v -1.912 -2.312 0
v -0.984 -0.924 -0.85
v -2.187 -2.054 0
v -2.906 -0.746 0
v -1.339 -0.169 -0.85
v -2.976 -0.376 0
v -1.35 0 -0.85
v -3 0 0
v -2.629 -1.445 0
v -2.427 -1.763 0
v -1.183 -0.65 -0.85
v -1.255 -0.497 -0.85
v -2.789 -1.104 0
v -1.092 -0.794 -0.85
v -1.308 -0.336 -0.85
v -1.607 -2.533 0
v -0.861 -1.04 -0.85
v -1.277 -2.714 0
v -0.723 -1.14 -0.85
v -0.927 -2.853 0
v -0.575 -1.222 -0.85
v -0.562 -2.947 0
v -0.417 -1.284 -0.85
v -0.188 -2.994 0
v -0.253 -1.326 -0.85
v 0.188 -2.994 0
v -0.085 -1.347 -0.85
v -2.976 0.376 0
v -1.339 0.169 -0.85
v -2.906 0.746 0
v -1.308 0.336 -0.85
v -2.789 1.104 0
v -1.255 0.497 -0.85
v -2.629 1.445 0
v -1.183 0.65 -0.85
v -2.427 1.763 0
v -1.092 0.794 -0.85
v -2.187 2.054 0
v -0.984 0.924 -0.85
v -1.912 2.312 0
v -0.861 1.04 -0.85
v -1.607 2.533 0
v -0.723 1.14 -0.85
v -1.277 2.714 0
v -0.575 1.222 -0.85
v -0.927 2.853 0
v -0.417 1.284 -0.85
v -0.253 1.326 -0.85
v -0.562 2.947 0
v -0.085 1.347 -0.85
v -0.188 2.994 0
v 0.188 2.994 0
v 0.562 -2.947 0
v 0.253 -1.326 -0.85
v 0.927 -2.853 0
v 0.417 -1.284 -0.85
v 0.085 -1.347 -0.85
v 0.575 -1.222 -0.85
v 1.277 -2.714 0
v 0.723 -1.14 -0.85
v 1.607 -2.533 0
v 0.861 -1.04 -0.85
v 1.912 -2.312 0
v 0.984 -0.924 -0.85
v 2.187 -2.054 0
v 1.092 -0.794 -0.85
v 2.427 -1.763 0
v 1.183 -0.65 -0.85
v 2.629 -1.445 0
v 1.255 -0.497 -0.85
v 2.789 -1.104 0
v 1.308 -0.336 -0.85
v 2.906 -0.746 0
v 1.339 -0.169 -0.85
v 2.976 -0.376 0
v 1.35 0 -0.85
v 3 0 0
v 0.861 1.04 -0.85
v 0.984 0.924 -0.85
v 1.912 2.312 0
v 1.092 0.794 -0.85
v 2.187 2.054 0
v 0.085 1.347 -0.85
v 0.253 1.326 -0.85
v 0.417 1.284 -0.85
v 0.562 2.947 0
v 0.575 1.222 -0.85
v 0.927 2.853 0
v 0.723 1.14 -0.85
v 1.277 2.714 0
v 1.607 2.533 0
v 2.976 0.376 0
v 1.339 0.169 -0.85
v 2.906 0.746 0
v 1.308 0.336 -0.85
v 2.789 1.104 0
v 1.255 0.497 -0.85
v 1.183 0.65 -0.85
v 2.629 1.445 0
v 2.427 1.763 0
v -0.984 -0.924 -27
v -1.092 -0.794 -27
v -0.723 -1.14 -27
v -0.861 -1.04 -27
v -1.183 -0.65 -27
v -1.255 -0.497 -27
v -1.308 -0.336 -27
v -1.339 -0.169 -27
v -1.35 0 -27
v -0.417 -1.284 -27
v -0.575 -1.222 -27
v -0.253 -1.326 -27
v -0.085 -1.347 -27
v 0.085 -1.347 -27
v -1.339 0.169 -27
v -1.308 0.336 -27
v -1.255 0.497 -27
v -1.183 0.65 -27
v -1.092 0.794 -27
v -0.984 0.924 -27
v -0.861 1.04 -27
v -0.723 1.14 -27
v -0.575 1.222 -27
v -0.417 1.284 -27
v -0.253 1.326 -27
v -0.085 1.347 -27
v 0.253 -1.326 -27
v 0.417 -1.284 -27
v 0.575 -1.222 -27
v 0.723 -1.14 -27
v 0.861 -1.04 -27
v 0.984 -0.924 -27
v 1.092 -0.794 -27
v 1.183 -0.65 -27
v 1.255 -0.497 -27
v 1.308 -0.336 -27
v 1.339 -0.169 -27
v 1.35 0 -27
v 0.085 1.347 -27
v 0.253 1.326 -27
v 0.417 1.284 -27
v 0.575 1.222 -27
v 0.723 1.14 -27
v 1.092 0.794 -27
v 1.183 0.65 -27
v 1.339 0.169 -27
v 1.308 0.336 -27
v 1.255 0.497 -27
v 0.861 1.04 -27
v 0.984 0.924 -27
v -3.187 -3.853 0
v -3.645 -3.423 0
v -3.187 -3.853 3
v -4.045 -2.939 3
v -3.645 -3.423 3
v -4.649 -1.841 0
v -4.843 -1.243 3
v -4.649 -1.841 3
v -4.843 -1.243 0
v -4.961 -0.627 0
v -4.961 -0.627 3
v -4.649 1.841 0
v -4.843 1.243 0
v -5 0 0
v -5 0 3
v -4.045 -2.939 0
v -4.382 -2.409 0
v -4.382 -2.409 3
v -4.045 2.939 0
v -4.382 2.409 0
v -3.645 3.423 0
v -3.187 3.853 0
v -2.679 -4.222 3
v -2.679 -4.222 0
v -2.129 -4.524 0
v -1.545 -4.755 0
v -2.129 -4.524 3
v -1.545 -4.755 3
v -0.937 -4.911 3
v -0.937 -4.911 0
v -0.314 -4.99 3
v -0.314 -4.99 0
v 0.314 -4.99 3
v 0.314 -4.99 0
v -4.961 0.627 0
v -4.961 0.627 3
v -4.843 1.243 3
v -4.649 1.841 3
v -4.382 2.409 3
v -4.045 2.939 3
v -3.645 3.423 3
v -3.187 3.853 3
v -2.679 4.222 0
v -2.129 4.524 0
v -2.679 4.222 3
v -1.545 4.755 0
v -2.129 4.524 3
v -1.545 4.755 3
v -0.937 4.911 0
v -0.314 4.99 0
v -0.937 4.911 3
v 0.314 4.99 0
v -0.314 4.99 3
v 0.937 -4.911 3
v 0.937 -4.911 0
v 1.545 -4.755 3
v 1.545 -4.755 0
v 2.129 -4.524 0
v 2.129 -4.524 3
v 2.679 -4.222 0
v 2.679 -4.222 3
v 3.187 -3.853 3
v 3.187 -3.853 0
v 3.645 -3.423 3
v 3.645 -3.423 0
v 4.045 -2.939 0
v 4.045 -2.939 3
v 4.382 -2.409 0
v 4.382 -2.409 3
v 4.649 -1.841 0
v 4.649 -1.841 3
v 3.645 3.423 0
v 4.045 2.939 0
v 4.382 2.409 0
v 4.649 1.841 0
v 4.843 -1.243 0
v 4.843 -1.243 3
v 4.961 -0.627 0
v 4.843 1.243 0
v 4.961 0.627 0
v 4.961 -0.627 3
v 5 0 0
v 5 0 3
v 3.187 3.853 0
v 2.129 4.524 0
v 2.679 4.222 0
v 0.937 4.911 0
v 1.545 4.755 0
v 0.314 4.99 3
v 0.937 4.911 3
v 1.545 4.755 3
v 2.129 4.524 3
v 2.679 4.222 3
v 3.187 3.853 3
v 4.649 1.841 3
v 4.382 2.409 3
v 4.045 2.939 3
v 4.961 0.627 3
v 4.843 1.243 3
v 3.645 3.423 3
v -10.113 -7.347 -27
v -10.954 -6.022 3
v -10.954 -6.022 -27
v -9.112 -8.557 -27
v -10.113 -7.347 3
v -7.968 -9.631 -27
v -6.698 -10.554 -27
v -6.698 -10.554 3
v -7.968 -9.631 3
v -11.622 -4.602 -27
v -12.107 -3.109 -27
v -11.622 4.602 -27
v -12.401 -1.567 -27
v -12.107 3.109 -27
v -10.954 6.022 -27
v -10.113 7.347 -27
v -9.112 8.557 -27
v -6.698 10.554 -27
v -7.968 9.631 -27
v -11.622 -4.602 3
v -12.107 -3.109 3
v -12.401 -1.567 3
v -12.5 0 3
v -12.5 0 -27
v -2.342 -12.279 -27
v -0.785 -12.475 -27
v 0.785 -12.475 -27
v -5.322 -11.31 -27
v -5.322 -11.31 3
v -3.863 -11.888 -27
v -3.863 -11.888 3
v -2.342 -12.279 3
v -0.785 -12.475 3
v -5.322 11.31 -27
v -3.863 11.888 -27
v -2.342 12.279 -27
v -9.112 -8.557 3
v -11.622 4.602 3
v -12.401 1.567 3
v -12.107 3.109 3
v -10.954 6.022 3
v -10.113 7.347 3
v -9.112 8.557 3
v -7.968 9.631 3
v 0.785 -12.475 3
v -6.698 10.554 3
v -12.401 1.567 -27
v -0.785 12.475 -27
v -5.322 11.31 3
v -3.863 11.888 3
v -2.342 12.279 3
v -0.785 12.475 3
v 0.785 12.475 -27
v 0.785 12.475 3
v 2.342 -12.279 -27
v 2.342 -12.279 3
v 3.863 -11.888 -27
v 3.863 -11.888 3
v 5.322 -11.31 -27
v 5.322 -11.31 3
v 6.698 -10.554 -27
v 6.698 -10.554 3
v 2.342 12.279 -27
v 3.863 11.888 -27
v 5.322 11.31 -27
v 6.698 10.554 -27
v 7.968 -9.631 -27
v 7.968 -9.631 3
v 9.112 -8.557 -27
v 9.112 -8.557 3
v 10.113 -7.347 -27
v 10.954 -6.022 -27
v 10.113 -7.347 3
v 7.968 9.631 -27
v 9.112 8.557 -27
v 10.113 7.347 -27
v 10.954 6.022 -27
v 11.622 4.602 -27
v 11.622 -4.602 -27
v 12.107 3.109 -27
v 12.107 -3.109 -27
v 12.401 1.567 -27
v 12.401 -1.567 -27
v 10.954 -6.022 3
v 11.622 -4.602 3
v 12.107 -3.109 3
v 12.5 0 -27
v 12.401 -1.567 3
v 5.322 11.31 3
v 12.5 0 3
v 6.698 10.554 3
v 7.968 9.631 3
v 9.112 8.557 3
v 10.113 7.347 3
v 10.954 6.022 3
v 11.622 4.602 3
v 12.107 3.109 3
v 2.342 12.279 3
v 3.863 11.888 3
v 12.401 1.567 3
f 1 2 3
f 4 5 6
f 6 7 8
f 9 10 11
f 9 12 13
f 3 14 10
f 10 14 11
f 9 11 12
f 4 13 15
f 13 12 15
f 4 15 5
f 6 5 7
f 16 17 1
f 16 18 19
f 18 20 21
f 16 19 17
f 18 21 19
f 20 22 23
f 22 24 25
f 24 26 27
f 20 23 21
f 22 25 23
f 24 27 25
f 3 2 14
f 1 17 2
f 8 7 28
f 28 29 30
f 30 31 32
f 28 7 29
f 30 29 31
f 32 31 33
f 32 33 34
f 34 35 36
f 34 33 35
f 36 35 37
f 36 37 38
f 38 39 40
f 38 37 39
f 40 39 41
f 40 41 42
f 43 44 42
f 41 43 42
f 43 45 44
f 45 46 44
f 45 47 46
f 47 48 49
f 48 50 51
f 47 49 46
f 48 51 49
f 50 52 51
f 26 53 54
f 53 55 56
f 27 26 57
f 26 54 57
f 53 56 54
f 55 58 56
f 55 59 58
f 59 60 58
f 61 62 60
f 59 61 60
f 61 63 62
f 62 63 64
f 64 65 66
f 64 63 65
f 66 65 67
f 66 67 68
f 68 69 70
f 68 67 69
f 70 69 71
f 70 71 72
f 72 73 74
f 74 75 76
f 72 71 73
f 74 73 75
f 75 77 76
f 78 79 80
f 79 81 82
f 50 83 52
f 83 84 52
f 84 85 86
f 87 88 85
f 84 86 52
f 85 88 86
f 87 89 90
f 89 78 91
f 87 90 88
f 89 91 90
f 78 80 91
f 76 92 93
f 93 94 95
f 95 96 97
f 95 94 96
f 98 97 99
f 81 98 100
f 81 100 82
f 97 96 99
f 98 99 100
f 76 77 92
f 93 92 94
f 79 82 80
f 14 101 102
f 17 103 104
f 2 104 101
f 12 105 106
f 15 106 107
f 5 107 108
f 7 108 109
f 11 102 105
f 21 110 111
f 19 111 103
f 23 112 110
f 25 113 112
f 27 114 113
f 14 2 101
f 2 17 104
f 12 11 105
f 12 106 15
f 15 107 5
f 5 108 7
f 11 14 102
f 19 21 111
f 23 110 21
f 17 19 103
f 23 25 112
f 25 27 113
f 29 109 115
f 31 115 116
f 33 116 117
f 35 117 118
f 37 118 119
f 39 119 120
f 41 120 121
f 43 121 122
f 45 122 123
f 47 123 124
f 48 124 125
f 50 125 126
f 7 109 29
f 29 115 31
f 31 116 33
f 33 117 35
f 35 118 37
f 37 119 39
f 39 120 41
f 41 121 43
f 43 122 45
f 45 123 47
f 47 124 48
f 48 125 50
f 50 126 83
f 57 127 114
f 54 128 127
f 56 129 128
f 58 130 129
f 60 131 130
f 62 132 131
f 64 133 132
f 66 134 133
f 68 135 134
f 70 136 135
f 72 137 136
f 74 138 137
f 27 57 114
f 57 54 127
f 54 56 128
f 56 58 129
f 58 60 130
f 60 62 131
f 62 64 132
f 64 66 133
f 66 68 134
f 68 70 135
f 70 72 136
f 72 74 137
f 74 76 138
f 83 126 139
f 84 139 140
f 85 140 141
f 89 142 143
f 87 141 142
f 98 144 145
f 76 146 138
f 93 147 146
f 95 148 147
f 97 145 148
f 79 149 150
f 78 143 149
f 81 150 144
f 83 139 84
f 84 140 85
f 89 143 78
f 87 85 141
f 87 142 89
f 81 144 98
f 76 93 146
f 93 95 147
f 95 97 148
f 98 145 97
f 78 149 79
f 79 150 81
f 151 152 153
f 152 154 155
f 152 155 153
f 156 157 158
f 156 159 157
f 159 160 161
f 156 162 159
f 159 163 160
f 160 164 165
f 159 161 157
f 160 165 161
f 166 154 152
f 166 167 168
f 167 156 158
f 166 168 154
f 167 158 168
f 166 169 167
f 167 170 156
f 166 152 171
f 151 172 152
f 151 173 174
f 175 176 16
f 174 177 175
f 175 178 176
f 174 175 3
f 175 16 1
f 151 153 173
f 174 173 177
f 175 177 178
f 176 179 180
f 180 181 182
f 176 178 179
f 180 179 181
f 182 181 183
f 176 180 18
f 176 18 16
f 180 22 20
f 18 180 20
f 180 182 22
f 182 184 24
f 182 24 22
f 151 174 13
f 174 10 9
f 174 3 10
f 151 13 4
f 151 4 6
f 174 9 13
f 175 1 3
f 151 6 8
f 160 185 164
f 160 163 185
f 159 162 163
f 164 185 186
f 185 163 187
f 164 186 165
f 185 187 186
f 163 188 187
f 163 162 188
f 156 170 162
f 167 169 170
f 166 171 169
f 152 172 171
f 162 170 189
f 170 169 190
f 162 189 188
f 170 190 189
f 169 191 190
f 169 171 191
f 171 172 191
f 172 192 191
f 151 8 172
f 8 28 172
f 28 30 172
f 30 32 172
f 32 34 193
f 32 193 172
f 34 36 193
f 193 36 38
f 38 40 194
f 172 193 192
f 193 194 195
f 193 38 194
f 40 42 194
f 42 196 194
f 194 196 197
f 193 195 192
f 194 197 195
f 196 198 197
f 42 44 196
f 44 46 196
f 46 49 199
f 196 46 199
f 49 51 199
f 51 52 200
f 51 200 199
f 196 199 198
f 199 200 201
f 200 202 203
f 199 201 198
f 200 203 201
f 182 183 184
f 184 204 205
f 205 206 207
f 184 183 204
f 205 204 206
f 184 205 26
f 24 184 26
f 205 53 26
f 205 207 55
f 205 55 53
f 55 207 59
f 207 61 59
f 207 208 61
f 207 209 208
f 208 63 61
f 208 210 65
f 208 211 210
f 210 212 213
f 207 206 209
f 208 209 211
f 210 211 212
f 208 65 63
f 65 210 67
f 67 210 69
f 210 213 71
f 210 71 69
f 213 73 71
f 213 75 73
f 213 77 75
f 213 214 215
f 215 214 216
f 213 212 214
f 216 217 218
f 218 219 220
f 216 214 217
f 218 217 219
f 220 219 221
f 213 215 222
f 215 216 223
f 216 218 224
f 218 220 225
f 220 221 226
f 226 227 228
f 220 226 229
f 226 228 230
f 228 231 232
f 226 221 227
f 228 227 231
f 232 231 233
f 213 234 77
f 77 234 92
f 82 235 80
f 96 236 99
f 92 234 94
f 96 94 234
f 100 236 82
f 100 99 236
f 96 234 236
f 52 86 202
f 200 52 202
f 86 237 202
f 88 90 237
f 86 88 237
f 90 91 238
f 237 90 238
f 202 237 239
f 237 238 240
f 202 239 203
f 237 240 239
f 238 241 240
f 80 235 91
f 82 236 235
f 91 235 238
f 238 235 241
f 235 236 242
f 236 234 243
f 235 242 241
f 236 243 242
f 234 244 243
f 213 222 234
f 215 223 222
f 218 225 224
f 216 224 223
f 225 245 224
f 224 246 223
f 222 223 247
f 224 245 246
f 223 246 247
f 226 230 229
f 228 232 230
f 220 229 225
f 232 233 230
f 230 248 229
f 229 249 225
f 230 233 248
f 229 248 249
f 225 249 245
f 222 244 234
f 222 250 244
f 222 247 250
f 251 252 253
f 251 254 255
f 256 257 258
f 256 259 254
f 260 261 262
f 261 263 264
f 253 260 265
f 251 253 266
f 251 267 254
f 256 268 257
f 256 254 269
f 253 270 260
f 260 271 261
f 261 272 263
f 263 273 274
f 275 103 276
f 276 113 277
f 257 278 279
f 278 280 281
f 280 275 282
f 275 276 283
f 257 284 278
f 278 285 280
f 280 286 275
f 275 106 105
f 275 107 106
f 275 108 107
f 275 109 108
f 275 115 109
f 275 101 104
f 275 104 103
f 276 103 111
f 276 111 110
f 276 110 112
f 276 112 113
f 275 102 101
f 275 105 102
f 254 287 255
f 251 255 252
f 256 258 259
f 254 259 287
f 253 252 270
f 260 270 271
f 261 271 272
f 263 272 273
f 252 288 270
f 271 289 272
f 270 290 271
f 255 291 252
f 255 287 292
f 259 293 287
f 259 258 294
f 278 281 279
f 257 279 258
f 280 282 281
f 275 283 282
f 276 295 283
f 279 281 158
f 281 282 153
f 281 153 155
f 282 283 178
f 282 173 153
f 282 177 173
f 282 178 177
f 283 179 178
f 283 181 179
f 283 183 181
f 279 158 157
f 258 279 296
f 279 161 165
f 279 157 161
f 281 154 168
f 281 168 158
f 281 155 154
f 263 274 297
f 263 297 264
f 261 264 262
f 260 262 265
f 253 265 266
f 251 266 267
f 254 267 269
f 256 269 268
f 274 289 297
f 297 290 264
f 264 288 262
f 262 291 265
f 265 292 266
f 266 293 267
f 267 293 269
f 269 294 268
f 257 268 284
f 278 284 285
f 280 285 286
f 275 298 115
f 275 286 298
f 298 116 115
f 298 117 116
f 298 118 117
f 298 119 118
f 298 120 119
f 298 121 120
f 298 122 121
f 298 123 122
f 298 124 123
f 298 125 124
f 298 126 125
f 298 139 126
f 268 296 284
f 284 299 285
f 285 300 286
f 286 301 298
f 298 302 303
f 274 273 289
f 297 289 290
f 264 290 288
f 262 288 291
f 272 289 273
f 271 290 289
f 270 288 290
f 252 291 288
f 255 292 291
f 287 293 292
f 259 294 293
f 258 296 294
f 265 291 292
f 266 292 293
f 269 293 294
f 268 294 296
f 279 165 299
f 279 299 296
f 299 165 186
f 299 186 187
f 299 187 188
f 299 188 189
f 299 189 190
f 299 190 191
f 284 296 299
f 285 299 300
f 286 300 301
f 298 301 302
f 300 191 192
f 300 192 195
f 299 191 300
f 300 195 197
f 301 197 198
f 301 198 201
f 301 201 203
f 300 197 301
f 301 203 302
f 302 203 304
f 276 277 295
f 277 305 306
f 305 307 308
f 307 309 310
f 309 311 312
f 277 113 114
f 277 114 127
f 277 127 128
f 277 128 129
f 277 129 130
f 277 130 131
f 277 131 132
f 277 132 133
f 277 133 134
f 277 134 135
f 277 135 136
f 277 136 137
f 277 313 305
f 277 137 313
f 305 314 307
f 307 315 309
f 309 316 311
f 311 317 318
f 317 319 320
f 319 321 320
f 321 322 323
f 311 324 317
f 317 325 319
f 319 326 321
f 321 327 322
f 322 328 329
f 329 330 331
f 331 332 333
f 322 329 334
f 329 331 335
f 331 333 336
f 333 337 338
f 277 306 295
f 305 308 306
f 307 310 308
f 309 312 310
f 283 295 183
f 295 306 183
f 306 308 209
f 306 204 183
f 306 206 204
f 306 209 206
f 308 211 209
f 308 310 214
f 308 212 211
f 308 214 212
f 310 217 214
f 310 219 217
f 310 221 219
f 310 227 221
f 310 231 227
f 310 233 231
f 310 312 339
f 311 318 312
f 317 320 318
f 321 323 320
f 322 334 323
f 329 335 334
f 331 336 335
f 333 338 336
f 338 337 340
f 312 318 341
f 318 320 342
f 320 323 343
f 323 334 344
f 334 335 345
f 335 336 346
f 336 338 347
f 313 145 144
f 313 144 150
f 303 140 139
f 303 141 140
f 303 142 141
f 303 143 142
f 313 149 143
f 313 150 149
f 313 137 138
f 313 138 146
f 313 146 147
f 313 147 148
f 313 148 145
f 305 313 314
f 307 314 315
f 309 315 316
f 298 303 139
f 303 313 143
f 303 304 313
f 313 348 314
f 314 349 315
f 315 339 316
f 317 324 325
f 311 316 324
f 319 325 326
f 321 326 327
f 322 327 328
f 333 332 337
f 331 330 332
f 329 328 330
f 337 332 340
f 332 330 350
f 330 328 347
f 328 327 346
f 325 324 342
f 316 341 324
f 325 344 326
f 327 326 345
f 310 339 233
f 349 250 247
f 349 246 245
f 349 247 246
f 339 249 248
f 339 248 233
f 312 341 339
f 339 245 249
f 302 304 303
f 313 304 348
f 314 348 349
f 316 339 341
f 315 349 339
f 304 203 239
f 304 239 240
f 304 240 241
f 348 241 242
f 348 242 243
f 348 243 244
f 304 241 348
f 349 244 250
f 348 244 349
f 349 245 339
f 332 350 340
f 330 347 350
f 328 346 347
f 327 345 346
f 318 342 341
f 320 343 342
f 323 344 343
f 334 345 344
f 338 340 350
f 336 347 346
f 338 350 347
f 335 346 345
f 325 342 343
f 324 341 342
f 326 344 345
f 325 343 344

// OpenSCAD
$fn = 50;

difference() {
	union() {
		translate(v = [0, 0, -27.0]) {
			cylinder(h = 30, r = 12.5);
		}
	}
	union() {
		translate(v = [0, 0, 0]) {
			rotate(a = [0, 0, 0]) {
				difference() {
					union() {
						translate(v = [0, 0, -30.0]) {
							cylinder(h = 30, r = 1.0);
						}
						translate(v = [0, 0, -0.85]) {
							cylinder(h = 0.85, r1 = 1.35, r2 = 3.0);
						}
						translate(v = [0, 0, -30.0]) {
							cylinder(h = 30, r = 1.35);
						}
						translate(v = [0, 0, -30.0]) {
							cylinder(h = 30, r = 1.0);
						}
					}
					union();
				}
			}
		}
		#cylinder(h = 3, r = 5.0);
	}
}
